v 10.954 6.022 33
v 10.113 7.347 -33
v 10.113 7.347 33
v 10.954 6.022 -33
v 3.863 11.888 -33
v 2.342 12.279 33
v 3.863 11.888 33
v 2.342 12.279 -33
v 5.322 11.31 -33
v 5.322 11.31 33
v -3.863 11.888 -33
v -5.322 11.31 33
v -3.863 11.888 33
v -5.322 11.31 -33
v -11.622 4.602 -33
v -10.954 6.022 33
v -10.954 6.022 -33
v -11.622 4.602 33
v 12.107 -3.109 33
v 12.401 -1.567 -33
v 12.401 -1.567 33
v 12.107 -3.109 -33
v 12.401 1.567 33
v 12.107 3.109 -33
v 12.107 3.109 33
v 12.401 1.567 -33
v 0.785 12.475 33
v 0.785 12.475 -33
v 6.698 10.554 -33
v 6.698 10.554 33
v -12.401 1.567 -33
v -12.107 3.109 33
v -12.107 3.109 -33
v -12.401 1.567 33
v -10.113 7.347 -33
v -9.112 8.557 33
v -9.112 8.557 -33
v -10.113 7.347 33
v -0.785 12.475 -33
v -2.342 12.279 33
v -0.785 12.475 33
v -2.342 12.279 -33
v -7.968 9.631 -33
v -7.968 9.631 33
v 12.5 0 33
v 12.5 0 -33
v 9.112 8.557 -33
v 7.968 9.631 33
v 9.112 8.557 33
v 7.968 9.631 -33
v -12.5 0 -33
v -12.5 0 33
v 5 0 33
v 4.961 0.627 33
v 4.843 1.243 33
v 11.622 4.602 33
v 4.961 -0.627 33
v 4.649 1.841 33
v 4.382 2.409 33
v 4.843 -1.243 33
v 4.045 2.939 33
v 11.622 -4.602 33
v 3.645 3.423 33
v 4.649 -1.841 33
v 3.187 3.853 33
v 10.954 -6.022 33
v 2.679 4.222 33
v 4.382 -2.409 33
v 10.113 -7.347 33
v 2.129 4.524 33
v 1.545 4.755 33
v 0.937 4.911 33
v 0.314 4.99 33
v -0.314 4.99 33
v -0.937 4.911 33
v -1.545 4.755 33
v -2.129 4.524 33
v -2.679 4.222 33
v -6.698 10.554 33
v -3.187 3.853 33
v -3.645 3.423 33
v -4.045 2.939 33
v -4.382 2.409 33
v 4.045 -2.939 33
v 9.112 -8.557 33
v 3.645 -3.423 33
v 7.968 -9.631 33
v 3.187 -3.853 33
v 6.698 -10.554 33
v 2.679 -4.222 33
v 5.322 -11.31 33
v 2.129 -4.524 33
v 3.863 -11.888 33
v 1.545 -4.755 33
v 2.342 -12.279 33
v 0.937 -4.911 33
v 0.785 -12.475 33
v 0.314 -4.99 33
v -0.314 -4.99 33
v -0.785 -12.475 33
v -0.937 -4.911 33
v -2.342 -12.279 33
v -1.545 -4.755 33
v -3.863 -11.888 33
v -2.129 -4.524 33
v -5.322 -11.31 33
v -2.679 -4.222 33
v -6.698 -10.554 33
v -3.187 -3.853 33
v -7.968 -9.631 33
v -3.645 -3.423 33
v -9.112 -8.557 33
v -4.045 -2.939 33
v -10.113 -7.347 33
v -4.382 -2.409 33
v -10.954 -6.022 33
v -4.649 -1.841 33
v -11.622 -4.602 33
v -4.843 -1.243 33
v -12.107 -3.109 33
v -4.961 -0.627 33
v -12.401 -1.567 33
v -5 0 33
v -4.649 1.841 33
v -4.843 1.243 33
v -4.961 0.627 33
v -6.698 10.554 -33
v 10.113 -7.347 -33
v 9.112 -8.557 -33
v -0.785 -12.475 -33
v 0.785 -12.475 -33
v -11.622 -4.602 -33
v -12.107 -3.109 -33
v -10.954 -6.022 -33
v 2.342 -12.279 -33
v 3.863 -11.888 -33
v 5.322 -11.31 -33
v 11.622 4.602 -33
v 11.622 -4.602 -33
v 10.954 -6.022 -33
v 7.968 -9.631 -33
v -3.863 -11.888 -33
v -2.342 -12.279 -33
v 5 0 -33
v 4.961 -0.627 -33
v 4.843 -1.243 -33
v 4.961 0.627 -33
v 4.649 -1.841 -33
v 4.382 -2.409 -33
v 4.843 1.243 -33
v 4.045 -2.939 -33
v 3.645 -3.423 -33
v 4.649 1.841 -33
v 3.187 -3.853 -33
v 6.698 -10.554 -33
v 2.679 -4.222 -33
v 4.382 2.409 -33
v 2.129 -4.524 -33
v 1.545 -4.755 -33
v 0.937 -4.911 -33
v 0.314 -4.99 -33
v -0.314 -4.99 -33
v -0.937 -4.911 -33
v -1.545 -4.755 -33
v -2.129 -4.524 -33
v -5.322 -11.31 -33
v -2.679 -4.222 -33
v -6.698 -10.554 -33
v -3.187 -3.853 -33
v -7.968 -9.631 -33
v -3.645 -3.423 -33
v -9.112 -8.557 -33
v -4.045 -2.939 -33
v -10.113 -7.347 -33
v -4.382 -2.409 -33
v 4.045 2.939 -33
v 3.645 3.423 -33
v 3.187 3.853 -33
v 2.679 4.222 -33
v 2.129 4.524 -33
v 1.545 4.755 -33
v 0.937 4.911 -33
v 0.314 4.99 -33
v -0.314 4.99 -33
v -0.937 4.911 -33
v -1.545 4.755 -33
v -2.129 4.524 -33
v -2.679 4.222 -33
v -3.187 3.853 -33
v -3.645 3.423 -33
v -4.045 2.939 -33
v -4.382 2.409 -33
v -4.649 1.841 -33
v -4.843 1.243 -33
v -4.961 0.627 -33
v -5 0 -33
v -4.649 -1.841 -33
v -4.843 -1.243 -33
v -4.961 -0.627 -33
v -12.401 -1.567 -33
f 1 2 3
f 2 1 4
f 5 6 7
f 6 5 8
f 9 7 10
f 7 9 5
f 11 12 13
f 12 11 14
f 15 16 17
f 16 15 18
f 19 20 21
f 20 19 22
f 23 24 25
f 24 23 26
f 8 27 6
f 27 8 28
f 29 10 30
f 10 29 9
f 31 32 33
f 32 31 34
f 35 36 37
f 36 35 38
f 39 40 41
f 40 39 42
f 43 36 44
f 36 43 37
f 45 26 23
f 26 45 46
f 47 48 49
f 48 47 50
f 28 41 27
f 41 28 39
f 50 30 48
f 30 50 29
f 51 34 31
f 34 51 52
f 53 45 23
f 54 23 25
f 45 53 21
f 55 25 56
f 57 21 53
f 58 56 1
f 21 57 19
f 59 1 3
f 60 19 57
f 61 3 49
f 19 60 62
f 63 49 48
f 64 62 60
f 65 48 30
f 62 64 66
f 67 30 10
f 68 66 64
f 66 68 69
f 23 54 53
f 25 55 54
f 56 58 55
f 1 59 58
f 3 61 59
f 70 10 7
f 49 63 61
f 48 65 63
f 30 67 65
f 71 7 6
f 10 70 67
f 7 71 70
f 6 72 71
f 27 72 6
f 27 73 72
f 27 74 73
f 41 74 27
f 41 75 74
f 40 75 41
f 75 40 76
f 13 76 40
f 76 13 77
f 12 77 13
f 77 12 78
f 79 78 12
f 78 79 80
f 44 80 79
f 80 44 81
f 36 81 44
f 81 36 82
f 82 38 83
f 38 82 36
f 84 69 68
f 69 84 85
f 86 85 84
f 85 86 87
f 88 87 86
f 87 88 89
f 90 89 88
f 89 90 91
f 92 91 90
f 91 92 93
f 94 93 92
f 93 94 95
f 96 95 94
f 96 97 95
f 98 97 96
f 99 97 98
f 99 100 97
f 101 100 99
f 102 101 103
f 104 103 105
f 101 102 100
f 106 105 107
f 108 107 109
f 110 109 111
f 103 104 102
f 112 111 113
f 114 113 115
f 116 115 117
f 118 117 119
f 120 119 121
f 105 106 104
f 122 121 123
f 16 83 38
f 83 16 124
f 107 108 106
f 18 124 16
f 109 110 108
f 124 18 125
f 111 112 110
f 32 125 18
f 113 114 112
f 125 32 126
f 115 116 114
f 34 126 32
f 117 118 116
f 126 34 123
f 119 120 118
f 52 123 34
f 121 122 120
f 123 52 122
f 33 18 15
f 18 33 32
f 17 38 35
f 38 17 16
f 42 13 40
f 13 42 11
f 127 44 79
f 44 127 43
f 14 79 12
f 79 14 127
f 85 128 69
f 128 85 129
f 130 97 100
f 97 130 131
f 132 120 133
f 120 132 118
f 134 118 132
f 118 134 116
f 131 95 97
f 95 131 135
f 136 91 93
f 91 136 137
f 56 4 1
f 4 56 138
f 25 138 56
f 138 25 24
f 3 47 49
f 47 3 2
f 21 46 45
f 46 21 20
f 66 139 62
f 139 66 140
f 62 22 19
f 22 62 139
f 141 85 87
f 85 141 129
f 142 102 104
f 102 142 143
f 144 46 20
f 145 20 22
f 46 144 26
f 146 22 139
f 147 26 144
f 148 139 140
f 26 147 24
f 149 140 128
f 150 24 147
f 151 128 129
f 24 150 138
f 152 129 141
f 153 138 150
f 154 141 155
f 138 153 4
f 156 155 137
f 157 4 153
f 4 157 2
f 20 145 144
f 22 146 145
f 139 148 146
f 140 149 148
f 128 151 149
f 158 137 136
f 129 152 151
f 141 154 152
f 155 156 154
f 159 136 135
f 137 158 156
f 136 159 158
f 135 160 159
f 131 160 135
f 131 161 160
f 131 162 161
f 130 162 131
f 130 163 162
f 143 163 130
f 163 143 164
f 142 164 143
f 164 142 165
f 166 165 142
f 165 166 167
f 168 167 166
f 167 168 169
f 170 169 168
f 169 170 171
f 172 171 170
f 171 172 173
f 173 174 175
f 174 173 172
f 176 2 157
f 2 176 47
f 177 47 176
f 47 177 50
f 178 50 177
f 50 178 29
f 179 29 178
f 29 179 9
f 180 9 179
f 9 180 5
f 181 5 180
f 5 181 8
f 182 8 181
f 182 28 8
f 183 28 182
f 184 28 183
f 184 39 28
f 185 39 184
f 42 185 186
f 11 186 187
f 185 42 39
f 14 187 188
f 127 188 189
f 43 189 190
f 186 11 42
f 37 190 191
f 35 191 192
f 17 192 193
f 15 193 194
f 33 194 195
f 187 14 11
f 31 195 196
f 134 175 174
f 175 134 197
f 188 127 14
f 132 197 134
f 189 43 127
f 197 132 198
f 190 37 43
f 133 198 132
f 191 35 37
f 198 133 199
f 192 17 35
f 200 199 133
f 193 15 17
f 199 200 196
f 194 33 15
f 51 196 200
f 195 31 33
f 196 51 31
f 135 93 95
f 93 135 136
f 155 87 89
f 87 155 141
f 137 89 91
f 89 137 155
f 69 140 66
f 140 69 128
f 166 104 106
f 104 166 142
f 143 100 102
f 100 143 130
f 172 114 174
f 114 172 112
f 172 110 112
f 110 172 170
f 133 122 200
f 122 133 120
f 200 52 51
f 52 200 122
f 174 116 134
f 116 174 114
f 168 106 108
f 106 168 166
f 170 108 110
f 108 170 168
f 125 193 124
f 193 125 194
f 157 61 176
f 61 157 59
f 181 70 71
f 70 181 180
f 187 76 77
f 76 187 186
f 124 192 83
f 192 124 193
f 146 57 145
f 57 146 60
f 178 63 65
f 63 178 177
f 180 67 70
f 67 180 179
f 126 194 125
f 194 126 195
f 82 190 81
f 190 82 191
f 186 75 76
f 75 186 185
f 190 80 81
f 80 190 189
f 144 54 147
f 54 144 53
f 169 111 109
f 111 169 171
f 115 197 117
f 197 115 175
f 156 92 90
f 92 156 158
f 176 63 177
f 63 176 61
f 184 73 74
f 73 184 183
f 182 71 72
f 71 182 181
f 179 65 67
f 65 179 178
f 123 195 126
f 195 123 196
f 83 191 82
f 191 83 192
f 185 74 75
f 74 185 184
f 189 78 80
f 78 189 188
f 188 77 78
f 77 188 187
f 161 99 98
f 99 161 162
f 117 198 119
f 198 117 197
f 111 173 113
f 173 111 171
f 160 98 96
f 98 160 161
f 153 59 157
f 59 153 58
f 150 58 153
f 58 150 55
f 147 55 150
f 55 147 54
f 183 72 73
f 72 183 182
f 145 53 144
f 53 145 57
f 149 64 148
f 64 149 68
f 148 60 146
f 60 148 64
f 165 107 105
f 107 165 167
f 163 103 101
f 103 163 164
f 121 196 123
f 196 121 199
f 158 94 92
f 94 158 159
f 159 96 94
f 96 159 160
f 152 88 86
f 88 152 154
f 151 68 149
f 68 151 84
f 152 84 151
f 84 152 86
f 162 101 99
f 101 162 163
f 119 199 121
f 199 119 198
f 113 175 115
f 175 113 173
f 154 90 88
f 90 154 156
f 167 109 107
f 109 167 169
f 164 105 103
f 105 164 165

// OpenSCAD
$fn = 50;


difference() {
	union() {
		translate(v = [0, 0, -33.0000000000]) {
			cylinder(h = 66, r = 12.5000000000);
		}
	}
	union() {
		translate(v = [0, 0, -100.0000000000]) {
			cylinder(h = 200, r = 5);
		}
	}
}
